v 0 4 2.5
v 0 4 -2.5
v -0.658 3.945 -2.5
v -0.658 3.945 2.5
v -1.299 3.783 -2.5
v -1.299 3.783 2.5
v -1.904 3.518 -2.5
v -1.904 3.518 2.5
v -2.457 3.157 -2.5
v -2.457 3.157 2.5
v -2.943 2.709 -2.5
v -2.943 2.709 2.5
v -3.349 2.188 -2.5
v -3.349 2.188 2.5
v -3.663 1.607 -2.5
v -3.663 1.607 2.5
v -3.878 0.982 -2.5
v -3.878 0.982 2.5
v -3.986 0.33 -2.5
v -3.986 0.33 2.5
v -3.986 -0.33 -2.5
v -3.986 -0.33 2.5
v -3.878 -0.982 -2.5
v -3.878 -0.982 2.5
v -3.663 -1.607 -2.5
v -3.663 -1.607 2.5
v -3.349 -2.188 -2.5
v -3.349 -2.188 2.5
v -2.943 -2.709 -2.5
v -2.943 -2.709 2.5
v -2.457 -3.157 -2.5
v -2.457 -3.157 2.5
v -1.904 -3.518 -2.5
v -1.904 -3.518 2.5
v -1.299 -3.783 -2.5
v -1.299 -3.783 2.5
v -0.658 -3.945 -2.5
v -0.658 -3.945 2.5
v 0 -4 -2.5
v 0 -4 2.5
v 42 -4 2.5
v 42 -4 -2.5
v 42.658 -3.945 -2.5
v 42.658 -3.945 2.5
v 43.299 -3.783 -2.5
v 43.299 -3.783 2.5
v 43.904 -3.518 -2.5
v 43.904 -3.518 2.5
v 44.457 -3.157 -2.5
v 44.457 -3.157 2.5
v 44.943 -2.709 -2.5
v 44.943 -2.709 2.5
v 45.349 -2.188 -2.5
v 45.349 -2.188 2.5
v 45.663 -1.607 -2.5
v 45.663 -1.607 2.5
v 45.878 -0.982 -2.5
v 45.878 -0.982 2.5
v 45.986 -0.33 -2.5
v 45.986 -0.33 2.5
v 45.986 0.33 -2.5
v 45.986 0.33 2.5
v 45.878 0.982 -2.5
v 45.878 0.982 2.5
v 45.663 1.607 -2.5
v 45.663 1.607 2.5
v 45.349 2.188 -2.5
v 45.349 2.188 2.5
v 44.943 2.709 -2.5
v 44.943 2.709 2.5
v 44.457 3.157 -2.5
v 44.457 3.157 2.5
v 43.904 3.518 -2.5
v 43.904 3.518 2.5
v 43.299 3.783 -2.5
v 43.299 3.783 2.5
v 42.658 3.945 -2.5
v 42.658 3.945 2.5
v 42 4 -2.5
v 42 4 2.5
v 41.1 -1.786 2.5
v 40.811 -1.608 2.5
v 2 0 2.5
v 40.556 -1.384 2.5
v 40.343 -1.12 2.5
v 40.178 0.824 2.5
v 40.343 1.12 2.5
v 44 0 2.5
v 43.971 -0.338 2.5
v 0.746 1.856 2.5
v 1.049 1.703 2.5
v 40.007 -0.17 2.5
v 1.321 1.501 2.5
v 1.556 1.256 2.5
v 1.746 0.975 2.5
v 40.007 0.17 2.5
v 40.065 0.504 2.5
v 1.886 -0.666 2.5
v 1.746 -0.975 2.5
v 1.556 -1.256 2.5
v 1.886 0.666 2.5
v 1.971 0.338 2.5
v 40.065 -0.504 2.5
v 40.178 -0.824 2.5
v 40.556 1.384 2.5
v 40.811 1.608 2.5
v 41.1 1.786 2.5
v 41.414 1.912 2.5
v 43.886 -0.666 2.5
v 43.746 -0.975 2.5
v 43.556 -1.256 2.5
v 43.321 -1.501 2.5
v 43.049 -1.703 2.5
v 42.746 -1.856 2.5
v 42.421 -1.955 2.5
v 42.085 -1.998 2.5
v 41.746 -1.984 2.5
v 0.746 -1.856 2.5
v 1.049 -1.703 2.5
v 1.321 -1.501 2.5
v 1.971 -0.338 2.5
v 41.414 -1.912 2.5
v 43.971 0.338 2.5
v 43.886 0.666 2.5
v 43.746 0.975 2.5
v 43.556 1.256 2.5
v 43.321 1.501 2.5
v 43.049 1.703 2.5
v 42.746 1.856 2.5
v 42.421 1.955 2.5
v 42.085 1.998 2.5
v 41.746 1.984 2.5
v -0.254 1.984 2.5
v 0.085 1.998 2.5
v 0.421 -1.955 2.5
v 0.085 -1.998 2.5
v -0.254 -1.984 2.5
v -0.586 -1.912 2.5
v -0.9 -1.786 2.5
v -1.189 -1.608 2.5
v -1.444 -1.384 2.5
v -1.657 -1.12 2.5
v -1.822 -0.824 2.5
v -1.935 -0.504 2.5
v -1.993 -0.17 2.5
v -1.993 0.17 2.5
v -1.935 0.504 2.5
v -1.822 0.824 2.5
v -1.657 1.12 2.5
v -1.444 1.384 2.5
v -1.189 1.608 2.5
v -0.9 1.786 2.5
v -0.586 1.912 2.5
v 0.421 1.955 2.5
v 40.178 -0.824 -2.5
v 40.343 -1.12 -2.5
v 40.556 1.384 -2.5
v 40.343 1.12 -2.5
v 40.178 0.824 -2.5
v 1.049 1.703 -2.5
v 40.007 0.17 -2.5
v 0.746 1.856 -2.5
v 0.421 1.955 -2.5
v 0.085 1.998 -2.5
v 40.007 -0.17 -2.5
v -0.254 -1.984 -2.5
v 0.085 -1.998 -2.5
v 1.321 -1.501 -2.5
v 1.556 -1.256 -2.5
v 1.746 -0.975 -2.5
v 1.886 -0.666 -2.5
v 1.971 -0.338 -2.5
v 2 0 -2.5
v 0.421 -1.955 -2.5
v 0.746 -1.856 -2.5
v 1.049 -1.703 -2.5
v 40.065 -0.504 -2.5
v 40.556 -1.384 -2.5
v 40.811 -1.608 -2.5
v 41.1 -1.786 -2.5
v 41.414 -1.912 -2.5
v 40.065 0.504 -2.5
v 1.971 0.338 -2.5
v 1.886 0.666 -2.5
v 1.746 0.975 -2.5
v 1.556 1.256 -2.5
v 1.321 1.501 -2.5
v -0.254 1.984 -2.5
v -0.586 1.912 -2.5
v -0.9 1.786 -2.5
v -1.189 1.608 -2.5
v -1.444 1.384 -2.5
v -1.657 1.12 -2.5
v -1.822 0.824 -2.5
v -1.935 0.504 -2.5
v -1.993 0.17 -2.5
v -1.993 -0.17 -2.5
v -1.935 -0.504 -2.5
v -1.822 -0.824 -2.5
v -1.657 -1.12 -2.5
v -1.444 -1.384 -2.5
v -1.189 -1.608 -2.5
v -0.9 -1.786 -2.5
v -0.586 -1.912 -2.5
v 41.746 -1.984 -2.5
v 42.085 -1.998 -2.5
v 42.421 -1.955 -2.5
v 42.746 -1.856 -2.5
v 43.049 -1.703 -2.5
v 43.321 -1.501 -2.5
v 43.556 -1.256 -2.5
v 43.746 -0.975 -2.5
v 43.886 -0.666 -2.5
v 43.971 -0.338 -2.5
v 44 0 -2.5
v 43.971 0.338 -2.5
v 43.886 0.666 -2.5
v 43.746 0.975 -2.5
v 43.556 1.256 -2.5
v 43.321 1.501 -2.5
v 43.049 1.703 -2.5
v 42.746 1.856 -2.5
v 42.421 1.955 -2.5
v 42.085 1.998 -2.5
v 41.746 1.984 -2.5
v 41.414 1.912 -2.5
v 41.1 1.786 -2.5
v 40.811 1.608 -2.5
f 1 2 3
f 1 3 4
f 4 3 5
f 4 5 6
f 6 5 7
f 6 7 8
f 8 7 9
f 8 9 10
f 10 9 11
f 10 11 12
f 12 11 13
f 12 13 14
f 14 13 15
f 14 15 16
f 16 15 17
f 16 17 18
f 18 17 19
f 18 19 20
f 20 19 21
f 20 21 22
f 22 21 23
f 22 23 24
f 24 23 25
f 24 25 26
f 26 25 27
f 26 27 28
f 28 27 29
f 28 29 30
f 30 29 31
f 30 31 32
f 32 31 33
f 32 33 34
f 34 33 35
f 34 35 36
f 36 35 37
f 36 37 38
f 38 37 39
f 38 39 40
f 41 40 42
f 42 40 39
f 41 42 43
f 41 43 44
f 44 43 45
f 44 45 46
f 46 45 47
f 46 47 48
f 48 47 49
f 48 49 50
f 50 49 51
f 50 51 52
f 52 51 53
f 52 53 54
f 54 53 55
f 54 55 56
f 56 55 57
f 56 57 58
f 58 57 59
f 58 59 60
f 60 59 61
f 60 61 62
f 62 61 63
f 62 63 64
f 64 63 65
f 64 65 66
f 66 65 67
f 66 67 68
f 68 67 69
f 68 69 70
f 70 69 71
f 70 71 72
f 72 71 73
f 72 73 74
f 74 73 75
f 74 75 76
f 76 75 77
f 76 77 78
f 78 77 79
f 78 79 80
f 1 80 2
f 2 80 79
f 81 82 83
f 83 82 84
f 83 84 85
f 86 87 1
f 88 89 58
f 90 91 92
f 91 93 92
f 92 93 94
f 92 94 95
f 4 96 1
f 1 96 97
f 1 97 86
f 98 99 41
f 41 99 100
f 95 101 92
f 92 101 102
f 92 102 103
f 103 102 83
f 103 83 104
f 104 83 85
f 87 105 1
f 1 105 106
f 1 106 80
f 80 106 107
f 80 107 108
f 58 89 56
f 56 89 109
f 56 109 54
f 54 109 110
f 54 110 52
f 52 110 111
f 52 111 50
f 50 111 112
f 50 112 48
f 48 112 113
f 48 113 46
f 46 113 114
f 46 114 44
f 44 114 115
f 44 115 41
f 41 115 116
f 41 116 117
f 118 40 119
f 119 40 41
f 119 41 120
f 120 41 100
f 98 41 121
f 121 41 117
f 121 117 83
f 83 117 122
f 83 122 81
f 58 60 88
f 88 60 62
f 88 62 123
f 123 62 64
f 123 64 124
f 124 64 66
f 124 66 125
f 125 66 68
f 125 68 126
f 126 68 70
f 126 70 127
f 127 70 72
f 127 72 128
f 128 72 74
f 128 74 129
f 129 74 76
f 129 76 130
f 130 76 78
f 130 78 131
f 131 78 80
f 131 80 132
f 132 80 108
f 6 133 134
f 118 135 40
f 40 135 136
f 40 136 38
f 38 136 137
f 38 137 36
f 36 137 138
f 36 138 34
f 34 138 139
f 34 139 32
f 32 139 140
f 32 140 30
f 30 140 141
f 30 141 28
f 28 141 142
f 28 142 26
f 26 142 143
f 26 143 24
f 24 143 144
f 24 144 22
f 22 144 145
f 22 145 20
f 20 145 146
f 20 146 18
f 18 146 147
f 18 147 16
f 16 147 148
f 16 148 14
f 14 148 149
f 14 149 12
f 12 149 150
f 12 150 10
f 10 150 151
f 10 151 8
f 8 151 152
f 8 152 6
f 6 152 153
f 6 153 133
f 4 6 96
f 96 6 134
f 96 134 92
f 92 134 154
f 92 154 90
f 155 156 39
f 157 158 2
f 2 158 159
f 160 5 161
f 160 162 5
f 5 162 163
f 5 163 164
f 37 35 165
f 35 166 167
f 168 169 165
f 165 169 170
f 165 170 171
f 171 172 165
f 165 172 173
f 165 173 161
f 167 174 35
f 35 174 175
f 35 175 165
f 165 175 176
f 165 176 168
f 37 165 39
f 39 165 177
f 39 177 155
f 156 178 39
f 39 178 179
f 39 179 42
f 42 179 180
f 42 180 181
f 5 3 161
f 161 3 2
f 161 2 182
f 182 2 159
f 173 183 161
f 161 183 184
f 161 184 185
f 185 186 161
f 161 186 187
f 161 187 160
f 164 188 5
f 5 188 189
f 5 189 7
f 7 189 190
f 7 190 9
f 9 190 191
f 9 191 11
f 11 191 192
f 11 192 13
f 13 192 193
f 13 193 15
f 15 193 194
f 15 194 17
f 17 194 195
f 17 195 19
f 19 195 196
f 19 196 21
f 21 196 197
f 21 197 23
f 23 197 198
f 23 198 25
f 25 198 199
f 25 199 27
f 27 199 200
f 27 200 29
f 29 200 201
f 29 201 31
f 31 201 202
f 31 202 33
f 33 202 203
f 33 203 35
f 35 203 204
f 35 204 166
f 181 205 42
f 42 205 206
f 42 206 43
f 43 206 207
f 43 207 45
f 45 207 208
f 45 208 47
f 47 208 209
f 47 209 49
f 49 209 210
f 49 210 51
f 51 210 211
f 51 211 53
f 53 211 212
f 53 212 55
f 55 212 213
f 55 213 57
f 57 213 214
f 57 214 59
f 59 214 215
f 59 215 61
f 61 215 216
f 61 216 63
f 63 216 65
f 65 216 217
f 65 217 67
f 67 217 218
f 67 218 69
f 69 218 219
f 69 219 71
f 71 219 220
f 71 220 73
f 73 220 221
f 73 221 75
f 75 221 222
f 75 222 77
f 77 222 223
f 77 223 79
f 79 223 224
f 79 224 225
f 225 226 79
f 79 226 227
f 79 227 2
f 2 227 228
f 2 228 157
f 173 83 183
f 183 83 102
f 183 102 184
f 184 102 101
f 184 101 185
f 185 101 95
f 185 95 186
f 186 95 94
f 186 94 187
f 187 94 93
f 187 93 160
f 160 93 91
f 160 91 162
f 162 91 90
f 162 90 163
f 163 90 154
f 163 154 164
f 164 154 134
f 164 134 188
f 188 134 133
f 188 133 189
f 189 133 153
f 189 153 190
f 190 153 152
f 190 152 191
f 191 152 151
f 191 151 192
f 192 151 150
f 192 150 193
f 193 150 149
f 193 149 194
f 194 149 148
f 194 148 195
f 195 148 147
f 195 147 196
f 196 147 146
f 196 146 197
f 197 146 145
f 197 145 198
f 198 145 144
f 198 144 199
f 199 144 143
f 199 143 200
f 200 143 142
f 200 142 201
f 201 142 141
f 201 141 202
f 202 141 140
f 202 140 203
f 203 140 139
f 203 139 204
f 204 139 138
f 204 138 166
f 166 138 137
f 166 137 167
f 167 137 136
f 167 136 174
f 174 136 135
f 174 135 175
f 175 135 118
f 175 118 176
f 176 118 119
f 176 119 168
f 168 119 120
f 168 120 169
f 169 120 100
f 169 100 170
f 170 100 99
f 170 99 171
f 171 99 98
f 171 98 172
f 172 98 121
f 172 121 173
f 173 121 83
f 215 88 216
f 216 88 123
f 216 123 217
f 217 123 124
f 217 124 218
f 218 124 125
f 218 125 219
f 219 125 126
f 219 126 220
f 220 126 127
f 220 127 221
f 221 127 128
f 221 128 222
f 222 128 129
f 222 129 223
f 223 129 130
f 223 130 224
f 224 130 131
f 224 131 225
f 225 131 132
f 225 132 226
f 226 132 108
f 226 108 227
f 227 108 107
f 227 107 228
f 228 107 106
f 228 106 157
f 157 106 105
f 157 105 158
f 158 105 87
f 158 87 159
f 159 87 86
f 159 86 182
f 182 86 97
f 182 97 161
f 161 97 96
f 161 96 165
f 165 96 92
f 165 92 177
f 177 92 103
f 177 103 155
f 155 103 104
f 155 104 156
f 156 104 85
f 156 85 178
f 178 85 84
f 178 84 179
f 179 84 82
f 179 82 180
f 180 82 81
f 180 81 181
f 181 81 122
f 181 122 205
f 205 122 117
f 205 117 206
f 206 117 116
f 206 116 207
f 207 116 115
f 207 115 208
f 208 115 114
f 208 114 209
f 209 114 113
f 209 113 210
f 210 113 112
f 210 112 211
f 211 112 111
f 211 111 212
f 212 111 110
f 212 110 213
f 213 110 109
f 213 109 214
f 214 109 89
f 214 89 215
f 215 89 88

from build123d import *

# Parameters (mm, degrees)
BOSS_EXTRUDE1_DEPTH = 2.5
SKETCH2_R           = 2
CUT_EXTRUDE1_DEPTH  = 6


with BuildPart() as part:
    # Sketch1 → Boss-Extrude1 (new body, symmetric)
    with BuildSketch(Plane.XY):
        with BuildLine():
            Line((0, 4), (42, 4))
            ThreePointArc((42, 4), (46, 0), (42, -4))
            Line((42, -4), (0, -4))
            ThreePointArc((0, -4), (-4, 0), (0, 4))
        make_face()
    extrude(amount=BOSS_EXTRUDE1_DEPTH, both=True)

    # Sketch2 → Cut-Extrude1 (cut, through all)
    with BuildSketch(Plane.XY.offset(2.5)):
        with Locations((42, 0)):
            Circle(SKETCH2_R)
        Circle(SKETCH2_R)
    extrude(amount=-CUT_EXTRUDE1_DEPTH, mode=Mode.SUBTRACT)


solid = part.part
